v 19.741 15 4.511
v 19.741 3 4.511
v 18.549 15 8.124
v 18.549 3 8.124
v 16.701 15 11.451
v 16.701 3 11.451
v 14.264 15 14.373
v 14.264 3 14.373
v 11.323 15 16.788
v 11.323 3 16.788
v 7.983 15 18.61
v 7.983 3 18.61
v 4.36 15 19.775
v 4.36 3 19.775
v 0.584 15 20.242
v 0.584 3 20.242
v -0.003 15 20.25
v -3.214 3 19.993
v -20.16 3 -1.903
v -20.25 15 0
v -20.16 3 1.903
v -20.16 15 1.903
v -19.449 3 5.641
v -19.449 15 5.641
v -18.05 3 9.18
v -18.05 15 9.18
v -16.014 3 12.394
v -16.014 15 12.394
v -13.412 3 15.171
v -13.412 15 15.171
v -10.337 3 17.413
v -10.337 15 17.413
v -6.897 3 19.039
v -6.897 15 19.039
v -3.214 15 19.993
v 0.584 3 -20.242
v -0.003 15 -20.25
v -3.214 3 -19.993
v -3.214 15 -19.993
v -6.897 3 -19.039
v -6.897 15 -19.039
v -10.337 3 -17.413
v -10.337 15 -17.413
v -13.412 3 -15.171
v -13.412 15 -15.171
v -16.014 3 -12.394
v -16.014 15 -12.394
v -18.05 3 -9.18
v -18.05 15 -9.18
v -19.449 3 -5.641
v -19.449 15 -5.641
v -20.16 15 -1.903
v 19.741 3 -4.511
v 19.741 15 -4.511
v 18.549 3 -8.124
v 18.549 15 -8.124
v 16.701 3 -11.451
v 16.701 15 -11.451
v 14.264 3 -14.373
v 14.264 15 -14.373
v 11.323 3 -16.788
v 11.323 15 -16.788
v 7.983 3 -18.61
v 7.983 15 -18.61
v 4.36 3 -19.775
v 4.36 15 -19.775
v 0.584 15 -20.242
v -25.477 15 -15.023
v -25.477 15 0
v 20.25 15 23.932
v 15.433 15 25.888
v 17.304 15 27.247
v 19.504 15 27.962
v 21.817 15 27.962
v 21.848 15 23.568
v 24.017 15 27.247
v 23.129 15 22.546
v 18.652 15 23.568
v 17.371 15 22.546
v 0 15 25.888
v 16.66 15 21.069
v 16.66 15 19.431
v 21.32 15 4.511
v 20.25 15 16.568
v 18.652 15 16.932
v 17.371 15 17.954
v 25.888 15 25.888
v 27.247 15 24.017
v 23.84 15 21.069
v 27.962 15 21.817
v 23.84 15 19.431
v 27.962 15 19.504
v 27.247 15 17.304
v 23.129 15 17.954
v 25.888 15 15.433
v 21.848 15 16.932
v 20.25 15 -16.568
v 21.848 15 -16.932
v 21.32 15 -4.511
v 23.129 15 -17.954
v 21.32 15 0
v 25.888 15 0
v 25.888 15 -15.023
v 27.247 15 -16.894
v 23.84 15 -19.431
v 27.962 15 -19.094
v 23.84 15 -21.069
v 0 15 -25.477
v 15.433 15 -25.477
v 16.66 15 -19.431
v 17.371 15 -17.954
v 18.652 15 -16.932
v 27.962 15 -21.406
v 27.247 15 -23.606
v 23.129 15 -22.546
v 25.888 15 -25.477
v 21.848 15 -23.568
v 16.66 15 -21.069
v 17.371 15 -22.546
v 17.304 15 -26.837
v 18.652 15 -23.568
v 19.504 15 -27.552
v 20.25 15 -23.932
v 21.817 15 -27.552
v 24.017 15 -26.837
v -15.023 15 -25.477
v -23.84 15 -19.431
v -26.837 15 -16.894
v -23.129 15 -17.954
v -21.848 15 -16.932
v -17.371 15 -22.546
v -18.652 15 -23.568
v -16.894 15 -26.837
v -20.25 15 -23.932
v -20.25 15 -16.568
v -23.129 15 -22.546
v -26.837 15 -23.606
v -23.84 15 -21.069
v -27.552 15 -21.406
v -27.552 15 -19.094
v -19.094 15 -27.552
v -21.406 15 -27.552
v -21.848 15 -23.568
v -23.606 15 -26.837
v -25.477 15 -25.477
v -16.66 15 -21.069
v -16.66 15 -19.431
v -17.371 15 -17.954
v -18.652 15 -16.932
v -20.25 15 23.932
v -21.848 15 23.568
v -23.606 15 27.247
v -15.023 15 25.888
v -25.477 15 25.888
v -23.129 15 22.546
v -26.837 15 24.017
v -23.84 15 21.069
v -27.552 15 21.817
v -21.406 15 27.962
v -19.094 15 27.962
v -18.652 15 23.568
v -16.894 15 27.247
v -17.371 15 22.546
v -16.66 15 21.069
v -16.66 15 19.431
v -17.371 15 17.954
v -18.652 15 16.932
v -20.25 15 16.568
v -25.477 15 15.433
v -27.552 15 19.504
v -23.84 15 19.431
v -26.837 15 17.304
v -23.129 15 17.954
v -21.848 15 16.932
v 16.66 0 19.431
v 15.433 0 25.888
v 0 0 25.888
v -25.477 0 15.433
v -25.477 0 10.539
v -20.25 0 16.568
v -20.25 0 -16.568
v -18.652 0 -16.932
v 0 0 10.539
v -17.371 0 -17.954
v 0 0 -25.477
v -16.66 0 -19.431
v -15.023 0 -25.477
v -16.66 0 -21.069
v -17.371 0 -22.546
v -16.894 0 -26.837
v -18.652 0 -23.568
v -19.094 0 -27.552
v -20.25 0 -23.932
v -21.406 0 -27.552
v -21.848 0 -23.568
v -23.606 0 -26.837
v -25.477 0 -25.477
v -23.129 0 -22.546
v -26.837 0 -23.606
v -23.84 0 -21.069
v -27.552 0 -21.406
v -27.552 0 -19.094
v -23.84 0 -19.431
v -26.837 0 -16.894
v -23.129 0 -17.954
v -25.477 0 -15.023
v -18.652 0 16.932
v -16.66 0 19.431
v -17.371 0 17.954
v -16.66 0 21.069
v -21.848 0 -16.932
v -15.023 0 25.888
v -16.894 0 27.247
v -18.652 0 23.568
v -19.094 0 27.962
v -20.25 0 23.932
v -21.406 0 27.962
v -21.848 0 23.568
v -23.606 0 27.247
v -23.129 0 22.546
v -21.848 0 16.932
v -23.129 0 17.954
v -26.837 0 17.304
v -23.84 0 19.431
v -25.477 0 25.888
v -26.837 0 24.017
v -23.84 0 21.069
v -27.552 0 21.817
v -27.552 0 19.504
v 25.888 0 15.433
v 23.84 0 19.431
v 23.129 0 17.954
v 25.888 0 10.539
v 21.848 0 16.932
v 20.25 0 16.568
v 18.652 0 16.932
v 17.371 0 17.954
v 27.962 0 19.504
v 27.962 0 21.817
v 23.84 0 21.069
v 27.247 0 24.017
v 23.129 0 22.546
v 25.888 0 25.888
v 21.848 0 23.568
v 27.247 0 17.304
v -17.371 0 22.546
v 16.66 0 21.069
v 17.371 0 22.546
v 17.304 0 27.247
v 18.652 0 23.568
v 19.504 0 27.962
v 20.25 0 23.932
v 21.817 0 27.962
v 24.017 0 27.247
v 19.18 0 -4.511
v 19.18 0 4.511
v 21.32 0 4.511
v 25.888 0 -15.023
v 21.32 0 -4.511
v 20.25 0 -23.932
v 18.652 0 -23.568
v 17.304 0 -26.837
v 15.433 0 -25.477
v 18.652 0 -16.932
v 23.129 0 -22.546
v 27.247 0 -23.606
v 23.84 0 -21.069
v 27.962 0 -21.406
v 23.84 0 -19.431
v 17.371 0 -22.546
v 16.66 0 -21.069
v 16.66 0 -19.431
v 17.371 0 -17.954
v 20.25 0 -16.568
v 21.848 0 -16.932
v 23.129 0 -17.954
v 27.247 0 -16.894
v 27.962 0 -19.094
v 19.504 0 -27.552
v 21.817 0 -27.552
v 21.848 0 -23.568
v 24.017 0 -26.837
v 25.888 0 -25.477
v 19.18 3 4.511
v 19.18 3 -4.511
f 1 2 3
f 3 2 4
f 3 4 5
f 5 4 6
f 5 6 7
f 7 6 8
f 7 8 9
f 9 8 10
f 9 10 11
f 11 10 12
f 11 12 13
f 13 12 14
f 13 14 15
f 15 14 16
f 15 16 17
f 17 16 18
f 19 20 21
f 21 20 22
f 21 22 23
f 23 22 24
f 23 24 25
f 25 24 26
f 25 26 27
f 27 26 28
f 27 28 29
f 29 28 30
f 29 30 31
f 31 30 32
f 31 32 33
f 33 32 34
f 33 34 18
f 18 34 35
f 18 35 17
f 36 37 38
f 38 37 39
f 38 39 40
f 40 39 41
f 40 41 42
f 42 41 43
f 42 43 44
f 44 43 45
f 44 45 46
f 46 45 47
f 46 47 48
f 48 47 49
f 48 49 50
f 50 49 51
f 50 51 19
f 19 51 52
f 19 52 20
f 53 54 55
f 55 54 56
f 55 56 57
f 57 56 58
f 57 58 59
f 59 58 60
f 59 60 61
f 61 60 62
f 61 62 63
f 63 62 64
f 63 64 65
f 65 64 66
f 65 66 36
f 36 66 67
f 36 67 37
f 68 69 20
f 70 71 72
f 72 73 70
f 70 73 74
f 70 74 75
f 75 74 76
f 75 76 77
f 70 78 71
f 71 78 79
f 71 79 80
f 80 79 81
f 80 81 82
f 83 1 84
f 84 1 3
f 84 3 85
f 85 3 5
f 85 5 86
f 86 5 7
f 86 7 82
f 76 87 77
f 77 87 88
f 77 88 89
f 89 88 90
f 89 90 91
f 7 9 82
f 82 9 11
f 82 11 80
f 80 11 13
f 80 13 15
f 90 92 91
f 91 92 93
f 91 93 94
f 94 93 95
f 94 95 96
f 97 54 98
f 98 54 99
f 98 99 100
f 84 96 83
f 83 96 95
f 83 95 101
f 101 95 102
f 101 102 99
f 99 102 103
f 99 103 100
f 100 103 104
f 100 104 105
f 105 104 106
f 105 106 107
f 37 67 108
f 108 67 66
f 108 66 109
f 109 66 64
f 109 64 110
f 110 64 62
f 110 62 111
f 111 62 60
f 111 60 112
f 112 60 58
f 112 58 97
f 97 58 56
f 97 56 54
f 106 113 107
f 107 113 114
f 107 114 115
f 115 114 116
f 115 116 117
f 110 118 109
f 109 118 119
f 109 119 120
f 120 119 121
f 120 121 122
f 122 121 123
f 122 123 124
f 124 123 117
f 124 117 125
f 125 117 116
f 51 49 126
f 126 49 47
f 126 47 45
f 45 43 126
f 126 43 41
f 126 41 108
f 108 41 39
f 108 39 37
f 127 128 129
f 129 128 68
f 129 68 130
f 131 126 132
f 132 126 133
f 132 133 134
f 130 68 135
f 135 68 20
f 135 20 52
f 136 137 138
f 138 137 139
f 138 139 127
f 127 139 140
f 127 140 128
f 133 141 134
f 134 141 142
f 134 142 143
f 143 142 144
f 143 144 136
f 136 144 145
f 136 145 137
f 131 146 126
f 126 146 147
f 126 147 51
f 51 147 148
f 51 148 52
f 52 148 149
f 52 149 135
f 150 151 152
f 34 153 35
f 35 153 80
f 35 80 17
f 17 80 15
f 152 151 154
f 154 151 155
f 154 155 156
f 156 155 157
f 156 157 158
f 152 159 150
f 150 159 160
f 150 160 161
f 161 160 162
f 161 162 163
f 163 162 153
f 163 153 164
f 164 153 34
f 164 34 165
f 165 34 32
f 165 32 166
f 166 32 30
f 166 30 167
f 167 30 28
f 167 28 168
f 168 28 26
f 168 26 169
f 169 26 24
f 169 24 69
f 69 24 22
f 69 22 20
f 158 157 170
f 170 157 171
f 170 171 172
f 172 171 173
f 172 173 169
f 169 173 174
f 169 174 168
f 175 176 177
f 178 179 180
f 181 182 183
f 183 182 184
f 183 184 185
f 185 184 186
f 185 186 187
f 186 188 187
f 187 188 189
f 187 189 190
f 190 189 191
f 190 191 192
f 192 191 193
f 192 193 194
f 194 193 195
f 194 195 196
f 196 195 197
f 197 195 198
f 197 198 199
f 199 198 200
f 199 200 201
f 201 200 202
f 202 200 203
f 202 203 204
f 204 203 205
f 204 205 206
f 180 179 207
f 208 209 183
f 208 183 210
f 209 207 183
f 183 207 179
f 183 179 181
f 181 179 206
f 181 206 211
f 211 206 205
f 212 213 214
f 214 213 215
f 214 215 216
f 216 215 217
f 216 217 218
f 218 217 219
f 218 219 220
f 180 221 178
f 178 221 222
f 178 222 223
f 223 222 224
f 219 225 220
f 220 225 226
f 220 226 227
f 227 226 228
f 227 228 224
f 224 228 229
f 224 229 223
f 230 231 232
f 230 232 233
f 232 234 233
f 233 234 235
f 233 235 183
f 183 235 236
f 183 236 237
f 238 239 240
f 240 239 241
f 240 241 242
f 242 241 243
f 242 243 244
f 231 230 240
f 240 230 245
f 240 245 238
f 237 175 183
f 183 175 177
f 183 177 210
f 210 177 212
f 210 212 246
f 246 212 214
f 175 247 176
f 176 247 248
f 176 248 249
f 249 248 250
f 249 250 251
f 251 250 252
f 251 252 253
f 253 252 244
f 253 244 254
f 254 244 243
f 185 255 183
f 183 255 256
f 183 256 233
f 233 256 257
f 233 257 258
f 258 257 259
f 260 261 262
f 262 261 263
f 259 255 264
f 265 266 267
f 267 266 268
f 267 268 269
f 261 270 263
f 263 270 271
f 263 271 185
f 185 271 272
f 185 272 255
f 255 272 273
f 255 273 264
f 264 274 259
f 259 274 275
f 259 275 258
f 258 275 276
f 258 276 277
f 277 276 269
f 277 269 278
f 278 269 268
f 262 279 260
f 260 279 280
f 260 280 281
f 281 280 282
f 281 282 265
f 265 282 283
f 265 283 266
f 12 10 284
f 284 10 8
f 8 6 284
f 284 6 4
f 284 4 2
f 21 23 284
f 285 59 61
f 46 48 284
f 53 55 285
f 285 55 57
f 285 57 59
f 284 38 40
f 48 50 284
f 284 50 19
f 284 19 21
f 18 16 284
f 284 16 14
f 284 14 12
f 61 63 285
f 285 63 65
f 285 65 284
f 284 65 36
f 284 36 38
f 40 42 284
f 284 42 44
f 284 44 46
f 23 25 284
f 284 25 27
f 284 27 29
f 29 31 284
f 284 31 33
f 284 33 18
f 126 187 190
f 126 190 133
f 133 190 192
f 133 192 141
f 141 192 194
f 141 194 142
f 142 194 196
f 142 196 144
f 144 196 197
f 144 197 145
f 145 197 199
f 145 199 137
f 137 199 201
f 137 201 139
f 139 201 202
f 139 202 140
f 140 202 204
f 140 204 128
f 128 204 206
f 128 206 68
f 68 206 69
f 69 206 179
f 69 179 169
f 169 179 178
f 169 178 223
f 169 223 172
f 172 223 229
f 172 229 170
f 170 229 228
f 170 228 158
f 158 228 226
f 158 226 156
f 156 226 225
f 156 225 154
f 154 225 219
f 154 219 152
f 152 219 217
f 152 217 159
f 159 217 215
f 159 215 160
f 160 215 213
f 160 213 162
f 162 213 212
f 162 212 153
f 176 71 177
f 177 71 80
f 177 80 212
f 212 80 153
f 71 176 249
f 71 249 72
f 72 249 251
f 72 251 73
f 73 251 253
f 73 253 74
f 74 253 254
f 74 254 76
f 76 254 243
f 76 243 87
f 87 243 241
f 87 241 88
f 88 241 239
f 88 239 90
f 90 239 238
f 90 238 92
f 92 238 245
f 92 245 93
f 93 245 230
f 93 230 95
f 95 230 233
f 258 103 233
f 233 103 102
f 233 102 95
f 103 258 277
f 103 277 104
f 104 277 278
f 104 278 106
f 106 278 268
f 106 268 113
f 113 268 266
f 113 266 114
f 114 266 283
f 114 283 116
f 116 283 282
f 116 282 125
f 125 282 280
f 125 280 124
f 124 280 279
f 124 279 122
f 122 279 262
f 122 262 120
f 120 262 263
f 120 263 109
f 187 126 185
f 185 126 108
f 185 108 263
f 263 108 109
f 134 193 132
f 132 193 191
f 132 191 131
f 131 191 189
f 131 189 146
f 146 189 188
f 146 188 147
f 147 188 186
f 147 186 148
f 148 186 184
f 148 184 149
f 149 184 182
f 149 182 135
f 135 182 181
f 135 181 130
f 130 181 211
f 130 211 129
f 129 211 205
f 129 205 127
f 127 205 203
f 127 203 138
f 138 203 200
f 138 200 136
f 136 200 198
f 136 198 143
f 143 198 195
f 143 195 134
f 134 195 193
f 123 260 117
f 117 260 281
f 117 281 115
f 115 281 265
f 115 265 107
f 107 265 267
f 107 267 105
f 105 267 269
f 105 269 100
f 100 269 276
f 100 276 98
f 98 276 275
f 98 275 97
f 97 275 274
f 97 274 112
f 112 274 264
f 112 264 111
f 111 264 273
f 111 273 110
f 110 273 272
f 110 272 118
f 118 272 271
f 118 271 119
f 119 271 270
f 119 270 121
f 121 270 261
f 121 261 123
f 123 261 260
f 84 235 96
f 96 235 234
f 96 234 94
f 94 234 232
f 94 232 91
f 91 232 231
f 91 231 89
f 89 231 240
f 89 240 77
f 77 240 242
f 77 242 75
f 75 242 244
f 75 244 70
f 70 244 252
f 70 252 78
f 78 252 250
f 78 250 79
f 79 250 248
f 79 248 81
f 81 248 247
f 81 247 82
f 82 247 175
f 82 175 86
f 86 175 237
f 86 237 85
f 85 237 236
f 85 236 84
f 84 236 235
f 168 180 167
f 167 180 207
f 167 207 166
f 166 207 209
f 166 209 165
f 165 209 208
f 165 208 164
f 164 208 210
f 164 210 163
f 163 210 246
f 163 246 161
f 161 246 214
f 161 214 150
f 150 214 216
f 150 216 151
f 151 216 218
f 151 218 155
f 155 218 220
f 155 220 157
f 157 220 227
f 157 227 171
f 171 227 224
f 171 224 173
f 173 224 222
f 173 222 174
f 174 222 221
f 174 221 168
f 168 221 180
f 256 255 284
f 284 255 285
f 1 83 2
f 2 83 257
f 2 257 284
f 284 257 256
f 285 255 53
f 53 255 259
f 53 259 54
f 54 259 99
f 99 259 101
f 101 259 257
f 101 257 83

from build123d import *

# Parameters (mm, degrees)
SKETCH1_R               = 20.25
SKETCH1_R_2             = 3.682229715
BOSS_EXTRUDE1_DEPTH     = 15
SKETCH2_R               = 20.25
BOSS_EXTRUDE2_DEPTH     = 3
SKETCH3_W               = 2.140111698
SKETCH3_H               = 9.021804968
CUT_EXTRUDE1_DEPTH      = 13
CUT_EXTRUDE1_DEPTH_BACK = 4


with BuildPart() as part:
    # Sketch1 → Boss-Extrude1 (new body)
    with BuildSketch(Plane(origin=(0, 0, 0), x_dir=(1, 0, 0), z_dir=(0, 1, 0))):
        with BuildLine():
            Line((-25.477303851, -15.433164228), (-25.477303851, 15.022696149))
            ThreePointArc((-25.477303851, 15.022696149), (-25.477303851, 25.477303851), (-15.022696149, 25.477303851))
            Line((-15.022696149, 25.477303851), (15.433164228, 25.477303851))
            ThreePointArc((15.433164228, 25.477303851), (25.887771929, 25.477303851), (25.887771929, 15.022696149))
            Line((25.887771929, 15.022696149), (25.887771929, -15.433164228))
            ThreePointArc((25.887771929, -15.433164228), (25.887771929, -25.887771929), (15.433164228, -25.887771929))
            Line((15.433164228, -25.887771929), (-15.022696149, -25.887771929))
            ThreePointArc((-15.022696149, -25.887771929), (-25.477303851, -25.887771929), (-25.477303851, -15.433164228))
        make_face()
        Circle(SKETCH1_R, mode=Mode.SUBTRACT)
        with Locations((-20.25, 20.25)):
            Circle(SKETCH1_R_2, mode=Mode.SUBTRACT)
        with Locations((20.25, 20.25)):
            Circle(SKETCH1_R_2, mode=Mode.SUBTRACT)
        with Locations((20.25, -20.25)):
            Circle(SKETCH1_R_2, mode=Mode.SUBTRACT)
        with Locations((-20.25, -20.25)):
            Circle(SKETCH1_R_2, mode=Mode.SUBTRACT)
    extrude(amount=BOSS_EXTRUDE1_DEPTH)

    # Sketch2 → Boss-Extrude2 (add)
    with BuildSketch(Plane.XZ):
        Circle(SKETCH2_R)
    extrude(amount=-BOSS_EXTRUDE2_DEPTH)

    # Sketch3 → Cut-Extrude1 (cut, two sides)
    with BuildSketch(Plane(origin=(0, 3, 0), x_dir=(1, 0, 0), z_dir=(0, 1, 0))) as cut_extrude1_sk:
        with Locations((20.25, 0)):
            Rectangle(SKETCH3_W, SKETCH3_H)
    extrude(amount=CUT_EXTRUDE1_DEPTH, mode=Mode.SUBTRACT)
    extrude(cut_extrude1_sk.sketch, amount=-CUT_EXTRUDE1_DEPTH_BACK, mode=Mode.SUBTRACT)


solid = part.part
